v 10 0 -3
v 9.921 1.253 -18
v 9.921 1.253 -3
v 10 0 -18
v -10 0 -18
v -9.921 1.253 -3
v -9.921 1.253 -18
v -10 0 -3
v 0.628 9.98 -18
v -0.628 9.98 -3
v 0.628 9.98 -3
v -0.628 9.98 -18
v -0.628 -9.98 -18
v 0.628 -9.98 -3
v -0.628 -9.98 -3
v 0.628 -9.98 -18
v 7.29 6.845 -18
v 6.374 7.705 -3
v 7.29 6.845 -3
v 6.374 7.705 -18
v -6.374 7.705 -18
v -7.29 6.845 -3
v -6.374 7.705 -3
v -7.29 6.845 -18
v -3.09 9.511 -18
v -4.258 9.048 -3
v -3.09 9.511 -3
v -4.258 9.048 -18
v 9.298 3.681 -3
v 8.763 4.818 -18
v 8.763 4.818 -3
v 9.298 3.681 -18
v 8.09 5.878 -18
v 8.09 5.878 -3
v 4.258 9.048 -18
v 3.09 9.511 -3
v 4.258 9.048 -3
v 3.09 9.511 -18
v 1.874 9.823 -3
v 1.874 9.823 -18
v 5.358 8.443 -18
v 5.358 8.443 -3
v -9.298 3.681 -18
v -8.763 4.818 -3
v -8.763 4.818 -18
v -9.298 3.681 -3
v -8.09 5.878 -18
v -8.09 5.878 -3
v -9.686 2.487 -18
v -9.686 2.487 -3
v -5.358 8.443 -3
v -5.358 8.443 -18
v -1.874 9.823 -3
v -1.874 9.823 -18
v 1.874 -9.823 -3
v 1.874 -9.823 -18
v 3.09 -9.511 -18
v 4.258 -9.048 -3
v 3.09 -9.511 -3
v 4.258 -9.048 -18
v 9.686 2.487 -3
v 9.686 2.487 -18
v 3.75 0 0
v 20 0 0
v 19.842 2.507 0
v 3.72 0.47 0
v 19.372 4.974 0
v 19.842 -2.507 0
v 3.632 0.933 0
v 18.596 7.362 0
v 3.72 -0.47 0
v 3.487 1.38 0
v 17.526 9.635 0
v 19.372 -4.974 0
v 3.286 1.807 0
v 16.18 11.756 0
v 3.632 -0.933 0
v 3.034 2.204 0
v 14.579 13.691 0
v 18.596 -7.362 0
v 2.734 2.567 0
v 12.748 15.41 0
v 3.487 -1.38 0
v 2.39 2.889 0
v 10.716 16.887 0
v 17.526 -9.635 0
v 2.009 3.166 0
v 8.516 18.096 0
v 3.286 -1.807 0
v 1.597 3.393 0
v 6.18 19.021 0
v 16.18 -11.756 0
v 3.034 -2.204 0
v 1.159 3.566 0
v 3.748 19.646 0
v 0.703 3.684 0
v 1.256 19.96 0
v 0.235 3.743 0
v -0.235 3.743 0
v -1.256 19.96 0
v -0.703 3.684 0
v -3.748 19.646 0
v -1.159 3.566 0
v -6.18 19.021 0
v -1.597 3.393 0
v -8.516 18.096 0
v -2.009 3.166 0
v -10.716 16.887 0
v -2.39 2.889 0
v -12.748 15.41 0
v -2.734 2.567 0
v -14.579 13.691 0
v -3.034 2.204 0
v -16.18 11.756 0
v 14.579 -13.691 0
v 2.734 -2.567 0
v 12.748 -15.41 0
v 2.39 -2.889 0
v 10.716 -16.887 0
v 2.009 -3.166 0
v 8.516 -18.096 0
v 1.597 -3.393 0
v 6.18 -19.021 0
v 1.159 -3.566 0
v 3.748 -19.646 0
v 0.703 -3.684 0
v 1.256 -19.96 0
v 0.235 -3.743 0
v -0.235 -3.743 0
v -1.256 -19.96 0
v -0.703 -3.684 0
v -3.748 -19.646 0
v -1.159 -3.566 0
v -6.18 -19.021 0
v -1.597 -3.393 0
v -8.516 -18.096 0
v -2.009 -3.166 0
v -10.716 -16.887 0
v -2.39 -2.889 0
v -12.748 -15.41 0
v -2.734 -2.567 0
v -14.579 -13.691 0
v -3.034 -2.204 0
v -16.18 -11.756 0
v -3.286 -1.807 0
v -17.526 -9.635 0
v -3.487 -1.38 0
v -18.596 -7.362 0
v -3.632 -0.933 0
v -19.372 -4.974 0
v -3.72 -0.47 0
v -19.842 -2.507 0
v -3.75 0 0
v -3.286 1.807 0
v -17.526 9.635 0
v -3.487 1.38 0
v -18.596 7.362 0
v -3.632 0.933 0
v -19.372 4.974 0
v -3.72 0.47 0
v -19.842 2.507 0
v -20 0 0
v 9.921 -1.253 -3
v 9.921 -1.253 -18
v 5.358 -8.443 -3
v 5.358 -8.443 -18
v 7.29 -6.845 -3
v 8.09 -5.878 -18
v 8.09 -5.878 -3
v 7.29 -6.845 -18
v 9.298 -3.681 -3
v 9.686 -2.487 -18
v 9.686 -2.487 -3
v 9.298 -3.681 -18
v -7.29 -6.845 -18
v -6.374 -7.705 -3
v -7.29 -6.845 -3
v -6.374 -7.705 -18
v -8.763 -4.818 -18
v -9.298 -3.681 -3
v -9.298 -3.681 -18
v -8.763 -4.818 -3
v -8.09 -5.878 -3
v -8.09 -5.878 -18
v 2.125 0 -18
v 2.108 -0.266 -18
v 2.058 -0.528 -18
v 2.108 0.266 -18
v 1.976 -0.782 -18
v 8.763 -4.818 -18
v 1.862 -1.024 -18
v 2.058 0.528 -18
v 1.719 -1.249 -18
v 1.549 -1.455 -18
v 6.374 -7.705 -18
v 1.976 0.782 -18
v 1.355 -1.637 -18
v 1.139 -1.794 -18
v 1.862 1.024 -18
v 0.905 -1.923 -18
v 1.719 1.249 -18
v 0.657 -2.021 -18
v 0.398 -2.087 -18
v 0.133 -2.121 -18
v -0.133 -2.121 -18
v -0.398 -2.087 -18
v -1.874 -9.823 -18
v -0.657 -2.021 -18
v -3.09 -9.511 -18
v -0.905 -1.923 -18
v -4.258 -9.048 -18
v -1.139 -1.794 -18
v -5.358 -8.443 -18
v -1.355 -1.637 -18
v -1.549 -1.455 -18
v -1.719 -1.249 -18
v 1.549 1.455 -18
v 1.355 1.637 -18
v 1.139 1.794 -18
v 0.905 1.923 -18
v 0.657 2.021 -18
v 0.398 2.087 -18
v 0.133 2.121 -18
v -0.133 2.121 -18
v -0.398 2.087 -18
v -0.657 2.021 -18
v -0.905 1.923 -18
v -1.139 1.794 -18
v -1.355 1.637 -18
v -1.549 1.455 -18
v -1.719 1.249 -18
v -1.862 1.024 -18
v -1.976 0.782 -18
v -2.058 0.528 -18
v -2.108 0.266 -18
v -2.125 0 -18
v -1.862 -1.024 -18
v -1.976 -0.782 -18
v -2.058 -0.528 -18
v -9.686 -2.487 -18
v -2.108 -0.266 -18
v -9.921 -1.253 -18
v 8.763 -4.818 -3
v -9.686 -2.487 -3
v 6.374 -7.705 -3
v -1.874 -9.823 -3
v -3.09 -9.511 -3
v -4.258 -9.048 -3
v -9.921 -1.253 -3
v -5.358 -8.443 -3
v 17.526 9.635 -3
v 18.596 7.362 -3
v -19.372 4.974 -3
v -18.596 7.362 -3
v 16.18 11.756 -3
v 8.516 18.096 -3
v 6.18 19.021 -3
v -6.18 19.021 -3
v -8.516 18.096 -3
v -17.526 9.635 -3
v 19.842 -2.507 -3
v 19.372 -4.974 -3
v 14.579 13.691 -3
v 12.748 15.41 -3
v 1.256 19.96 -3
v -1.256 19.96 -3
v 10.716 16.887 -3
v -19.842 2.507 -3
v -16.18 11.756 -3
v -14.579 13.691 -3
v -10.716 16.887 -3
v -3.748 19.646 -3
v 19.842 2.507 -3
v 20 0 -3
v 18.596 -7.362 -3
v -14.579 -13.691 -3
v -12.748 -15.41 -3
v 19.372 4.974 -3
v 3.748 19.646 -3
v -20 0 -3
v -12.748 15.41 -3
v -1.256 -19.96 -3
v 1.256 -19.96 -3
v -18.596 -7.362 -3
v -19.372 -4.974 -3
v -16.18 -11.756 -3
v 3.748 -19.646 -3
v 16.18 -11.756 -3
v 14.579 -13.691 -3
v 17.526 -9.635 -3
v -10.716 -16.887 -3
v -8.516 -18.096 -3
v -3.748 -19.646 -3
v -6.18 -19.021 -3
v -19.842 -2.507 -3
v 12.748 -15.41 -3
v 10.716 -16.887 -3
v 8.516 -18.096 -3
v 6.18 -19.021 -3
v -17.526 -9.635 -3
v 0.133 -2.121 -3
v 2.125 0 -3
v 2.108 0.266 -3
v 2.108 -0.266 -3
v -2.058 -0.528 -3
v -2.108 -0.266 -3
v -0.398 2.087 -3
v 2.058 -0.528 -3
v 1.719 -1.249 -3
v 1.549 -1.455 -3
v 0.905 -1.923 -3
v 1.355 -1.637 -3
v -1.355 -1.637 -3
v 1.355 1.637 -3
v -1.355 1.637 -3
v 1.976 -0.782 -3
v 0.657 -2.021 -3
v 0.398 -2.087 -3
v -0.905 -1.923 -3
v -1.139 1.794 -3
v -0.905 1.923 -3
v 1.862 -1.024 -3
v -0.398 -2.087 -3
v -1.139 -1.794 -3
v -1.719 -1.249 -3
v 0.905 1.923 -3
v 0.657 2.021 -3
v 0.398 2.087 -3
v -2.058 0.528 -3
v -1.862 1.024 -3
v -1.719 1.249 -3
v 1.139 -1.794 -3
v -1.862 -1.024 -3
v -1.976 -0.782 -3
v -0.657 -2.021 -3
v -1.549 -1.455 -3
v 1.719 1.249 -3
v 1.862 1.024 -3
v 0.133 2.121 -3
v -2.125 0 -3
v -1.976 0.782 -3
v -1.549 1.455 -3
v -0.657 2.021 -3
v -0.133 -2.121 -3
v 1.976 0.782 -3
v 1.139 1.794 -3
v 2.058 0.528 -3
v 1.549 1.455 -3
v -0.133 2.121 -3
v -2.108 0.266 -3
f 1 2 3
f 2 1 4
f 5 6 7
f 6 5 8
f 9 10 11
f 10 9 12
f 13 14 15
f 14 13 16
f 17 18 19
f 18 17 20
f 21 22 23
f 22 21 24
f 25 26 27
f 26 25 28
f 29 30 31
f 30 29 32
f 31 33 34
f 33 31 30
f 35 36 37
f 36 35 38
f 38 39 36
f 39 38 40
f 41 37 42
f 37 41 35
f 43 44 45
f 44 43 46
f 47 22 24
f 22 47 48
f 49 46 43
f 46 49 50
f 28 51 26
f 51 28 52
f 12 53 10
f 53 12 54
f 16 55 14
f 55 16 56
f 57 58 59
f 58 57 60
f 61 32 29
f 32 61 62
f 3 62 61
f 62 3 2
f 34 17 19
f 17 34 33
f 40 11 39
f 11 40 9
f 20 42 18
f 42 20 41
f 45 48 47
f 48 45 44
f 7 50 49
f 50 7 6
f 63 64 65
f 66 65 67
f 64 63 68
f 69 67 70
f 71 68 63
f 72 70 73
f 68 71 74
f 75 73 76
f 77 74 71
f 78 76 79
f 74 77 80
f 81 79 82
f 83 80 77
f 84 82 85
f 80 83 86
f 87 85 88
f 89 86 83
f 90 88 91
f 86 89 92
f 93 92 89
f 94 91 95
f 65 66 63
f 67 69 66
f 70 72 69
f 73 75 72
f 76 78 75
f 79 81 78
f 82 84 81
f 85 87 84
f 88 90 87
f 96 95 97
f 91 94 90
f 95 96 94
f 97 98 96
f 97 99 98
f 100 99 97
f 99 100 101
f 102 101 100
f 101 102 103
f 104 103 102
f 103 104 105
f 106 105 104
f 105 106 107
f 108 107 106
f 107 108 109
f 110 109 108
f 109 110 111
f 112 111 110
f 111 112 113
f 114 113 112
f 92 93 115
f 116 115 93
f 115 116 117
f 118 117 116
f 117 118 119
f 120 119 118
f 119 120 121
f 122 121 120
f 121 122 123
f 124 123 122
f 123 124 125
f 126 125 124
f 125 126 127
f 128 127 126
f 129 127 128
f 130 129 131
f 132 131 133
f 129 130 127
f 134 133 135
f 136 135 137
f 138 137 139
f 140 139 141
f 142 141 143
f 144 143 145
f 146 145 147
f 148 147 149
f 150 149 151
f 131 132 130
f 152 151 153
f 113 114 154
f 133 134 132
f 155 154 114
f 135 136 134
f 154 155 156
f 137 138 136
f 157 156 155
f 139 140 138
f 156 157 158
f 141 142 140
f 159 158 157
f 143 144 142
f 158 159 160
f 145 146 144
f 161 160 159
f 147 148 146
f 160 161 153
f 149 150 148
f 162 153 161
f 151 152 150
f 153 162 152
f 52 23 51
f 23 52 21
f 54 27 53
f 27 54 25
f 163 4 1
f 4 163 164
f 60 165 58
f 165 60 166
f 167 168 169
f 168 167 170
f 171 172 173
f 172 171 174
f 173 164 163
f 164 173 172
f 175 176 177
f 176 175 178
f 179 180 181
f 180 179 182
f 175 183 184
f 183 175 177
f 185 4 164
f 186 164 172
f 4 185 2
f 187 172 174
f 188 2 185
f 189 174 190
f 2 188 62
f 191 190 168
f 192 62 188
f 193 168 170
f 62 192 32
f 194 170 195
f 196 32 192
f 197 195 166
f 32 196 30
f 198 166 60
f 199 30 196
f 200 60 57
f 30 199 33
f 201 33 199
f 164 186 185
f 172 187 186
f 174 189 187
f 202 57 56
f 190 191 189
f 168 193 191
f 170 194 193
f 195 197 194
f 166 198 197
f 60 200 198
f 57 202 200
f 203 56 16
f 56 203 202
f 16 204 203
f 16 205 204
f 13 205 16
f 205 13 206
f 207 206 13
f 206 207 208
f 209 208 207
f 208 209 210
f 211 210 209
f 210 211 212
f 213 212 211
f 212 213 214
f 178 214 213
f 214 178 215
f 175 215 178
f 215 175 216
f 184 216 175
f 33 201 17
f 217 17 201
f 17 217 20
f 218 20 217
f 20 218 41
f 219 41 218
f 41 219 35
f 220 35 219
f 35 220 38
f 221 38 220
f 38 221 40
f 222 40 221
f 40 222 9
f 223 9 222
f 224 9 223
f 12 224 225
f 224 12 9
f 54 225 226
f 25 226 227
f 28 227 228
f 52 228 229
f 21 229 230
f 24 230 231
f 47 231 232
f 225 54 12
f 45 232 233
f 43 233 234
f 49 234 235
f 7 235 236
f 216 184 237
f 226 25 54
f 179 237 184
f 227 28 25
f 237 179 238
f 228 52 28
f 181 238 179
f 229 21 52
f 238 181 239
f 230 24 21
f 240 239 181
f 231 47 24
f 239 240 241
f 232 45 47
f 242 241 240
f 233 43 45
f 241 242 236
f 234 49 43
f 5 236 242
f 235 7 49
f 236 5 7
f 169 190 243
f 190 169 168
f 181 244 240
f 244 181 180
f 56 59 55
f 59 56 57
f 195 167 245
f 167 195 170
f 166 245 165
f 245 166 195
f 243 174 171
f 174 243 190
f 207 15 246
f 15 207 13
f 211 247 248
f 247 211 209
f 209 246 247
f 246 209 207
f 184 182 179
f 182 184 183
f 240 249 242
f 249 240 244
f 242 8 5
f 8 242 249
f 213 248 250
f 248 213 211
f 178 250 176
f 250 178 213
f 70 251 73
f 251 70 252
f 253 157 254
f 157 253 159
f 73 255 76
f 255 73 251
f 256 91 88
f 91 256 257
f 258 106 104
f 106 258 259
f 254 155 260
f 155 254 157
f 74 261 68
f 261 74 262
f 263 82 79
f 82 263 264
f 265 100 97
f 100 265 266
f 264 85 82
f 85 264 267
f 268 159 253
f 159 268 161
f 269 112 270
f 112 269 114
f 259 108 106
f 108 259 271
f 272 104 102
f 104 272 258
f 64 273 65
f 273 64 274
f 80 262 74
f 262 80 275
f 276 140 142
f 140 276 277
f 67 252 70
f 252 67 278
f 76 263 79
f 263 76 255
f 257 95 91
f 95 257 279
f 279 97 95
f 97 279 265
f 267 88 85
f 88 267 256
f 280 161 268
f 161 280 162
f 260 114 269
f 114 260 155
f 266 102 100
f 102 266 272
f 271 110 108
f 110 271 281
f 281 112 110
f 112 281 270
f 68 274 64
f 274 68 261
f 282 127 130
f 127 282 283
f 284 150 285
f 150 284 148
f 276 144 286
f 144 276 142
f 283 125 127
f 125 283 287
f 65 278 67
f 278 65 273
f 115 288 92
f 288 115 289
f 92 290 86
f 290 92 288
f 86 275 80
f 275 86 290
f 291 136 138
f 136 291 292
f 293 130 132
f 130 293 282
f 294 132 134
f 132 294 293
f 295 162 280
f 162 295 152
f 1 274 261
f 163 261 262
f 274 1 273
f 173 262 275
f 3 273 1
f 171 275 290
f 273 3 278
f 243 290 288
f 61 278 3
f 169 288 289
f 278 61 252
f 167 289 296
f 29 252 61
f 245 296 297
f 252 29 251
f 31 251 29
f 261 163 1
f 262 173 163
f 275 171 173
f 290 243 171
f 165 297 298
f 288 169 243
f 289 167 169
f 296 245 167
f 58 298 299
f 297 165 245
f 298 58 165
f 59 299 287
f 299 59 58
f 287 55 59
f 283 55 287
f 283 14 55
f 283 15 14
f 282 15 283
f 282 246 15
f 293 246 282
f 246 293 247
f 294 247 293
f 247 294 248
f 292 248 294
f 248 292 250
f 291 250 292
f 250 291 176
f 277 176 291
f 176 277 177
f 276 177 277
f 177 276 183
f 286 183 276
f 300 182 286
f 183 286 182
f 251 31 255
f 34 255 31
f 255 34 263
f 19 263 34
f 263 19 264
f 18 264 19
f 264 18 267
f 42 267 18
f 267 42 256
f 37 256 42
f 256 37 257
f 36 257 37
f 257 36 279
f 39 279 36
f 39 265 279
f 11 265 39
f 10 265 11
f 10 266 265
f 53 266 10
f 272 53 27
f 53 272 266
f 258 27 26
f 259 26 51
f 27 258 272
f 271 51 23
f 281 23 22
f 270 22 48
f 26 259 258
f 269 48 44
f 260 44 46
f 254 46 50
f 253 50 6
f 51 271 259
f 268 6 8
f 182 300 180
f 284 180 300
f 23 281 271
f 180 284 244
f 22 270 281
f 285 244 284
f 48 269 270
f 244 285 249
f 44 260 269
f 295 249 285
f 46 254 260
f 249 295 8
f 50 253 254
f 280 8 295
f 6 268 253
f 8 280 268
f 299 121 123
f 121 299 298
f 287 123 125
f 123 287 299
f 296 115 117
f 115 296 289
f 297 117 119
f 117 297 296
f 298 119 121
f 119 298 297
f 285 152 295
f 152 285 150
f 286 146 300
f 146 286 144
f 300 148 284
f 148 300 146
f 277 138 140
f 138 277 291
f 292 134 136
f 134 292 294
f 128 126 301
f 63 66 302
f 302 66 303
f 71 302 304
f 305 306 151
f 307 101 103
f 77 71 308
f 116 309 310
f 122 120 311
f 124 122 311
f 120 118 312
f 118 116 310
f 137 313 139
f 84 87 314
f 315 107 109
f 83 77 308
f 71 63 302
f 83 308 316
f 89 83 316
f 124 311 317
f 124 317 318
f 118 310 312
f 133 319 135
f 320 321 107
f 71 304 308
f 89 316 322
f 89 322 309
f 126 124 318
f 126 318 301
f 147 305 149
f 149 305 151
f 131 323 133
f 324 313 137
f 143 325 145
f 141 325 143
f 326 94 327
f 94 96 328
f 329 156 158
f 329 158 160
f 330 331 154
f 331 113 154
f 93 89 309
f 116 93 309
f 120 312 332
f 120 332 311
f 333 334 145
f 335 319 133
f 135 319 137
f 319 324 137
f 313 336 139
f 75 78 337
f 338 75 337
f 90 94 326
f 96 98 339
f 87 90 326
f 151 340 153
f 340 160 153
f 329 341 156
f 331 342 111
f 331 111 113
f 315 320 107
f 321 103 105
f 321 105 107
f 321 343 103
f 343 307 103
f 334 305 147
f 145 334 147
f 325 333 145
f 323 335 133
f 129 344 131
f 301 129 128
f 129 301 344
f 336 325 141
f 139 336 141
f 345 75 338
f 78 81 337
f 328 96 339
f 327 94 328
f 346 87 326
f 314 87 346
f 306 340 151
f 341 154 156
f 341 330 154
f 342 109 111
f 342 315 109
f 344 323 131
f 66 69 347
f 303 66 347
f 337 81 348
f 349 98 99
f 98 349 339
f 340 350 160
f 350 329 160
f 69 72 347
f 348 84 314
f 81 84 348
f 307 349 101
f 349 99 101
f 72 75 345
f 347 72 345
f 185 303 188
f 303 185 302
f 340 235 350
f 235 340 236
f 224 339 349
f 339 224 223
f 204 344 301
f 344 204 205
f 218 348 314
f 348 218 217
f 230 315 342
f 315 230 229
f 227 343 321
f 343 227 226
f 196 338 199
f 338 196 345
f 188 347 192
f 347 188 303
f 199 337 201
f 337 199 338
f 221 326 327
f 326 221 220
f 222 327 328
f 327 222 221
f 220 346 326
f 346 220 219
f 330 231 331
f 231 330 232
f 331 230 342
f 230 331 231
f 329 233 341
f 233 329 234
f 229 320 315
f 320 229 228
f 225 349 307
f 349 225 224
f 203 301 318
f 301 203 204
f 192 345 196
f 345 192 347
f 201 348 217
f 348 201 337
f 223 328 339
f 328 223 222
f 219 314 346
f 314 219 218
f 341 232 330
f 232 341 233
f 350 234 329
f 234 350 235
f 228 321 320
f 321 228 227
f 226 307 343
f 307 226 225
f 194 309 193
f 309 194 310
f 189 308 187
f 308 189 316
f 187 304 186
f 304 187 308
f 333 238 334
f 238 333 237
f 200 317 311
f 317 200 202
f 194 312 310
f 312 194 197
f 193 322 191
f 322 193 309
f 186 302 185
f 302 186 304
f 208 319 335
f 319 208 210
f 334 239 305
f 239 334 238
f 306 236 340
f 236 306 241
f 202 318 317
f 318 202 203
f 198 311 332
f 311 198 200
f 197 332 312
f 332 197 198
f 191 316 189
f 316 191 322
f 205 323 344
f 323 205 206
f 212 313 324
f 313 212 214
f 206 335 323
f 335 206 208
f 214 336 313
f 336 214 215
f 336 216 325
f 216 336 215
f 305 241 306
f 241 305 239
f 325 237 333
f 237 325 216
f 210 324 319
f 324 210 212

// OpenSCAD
$fn = 50;


difference() {
	union() {
		translate(v = [0, 0, -18.0000000000]) {
			cylinder(h = 18, r = 10.0000000000);
		}
		translate(v = [0, 0, -3.0000000000]) {
			cylinder(h = 3, r = 20.0000000000);
		}
	}
	union() {
		translate(v = [0, 0, 0]) {
			rotate(a = [0, 0, 0]) {
				difference() {
					union() {
						#translate(v = [0, 0, -18.0000000000]) {
							cylinder(h = 18, r = 2.0000000000);
						}
						#translate(v = [0, 0, -3]) {
							cylinder(h = 3, r1 = 2.1250000000, r2 = 3.7500000000);
						}
						#translate(v = [0, 0, -18.0000000000]) {
							cylinder(h = 18, r = 2.1250000000);
						}
						#translate(v = [0, 0, -18.0000000000]) {
							cylinder(h = 18, r = 2.0000000000);
						}
					}
					union();
				}
			}
		}
	}
}
